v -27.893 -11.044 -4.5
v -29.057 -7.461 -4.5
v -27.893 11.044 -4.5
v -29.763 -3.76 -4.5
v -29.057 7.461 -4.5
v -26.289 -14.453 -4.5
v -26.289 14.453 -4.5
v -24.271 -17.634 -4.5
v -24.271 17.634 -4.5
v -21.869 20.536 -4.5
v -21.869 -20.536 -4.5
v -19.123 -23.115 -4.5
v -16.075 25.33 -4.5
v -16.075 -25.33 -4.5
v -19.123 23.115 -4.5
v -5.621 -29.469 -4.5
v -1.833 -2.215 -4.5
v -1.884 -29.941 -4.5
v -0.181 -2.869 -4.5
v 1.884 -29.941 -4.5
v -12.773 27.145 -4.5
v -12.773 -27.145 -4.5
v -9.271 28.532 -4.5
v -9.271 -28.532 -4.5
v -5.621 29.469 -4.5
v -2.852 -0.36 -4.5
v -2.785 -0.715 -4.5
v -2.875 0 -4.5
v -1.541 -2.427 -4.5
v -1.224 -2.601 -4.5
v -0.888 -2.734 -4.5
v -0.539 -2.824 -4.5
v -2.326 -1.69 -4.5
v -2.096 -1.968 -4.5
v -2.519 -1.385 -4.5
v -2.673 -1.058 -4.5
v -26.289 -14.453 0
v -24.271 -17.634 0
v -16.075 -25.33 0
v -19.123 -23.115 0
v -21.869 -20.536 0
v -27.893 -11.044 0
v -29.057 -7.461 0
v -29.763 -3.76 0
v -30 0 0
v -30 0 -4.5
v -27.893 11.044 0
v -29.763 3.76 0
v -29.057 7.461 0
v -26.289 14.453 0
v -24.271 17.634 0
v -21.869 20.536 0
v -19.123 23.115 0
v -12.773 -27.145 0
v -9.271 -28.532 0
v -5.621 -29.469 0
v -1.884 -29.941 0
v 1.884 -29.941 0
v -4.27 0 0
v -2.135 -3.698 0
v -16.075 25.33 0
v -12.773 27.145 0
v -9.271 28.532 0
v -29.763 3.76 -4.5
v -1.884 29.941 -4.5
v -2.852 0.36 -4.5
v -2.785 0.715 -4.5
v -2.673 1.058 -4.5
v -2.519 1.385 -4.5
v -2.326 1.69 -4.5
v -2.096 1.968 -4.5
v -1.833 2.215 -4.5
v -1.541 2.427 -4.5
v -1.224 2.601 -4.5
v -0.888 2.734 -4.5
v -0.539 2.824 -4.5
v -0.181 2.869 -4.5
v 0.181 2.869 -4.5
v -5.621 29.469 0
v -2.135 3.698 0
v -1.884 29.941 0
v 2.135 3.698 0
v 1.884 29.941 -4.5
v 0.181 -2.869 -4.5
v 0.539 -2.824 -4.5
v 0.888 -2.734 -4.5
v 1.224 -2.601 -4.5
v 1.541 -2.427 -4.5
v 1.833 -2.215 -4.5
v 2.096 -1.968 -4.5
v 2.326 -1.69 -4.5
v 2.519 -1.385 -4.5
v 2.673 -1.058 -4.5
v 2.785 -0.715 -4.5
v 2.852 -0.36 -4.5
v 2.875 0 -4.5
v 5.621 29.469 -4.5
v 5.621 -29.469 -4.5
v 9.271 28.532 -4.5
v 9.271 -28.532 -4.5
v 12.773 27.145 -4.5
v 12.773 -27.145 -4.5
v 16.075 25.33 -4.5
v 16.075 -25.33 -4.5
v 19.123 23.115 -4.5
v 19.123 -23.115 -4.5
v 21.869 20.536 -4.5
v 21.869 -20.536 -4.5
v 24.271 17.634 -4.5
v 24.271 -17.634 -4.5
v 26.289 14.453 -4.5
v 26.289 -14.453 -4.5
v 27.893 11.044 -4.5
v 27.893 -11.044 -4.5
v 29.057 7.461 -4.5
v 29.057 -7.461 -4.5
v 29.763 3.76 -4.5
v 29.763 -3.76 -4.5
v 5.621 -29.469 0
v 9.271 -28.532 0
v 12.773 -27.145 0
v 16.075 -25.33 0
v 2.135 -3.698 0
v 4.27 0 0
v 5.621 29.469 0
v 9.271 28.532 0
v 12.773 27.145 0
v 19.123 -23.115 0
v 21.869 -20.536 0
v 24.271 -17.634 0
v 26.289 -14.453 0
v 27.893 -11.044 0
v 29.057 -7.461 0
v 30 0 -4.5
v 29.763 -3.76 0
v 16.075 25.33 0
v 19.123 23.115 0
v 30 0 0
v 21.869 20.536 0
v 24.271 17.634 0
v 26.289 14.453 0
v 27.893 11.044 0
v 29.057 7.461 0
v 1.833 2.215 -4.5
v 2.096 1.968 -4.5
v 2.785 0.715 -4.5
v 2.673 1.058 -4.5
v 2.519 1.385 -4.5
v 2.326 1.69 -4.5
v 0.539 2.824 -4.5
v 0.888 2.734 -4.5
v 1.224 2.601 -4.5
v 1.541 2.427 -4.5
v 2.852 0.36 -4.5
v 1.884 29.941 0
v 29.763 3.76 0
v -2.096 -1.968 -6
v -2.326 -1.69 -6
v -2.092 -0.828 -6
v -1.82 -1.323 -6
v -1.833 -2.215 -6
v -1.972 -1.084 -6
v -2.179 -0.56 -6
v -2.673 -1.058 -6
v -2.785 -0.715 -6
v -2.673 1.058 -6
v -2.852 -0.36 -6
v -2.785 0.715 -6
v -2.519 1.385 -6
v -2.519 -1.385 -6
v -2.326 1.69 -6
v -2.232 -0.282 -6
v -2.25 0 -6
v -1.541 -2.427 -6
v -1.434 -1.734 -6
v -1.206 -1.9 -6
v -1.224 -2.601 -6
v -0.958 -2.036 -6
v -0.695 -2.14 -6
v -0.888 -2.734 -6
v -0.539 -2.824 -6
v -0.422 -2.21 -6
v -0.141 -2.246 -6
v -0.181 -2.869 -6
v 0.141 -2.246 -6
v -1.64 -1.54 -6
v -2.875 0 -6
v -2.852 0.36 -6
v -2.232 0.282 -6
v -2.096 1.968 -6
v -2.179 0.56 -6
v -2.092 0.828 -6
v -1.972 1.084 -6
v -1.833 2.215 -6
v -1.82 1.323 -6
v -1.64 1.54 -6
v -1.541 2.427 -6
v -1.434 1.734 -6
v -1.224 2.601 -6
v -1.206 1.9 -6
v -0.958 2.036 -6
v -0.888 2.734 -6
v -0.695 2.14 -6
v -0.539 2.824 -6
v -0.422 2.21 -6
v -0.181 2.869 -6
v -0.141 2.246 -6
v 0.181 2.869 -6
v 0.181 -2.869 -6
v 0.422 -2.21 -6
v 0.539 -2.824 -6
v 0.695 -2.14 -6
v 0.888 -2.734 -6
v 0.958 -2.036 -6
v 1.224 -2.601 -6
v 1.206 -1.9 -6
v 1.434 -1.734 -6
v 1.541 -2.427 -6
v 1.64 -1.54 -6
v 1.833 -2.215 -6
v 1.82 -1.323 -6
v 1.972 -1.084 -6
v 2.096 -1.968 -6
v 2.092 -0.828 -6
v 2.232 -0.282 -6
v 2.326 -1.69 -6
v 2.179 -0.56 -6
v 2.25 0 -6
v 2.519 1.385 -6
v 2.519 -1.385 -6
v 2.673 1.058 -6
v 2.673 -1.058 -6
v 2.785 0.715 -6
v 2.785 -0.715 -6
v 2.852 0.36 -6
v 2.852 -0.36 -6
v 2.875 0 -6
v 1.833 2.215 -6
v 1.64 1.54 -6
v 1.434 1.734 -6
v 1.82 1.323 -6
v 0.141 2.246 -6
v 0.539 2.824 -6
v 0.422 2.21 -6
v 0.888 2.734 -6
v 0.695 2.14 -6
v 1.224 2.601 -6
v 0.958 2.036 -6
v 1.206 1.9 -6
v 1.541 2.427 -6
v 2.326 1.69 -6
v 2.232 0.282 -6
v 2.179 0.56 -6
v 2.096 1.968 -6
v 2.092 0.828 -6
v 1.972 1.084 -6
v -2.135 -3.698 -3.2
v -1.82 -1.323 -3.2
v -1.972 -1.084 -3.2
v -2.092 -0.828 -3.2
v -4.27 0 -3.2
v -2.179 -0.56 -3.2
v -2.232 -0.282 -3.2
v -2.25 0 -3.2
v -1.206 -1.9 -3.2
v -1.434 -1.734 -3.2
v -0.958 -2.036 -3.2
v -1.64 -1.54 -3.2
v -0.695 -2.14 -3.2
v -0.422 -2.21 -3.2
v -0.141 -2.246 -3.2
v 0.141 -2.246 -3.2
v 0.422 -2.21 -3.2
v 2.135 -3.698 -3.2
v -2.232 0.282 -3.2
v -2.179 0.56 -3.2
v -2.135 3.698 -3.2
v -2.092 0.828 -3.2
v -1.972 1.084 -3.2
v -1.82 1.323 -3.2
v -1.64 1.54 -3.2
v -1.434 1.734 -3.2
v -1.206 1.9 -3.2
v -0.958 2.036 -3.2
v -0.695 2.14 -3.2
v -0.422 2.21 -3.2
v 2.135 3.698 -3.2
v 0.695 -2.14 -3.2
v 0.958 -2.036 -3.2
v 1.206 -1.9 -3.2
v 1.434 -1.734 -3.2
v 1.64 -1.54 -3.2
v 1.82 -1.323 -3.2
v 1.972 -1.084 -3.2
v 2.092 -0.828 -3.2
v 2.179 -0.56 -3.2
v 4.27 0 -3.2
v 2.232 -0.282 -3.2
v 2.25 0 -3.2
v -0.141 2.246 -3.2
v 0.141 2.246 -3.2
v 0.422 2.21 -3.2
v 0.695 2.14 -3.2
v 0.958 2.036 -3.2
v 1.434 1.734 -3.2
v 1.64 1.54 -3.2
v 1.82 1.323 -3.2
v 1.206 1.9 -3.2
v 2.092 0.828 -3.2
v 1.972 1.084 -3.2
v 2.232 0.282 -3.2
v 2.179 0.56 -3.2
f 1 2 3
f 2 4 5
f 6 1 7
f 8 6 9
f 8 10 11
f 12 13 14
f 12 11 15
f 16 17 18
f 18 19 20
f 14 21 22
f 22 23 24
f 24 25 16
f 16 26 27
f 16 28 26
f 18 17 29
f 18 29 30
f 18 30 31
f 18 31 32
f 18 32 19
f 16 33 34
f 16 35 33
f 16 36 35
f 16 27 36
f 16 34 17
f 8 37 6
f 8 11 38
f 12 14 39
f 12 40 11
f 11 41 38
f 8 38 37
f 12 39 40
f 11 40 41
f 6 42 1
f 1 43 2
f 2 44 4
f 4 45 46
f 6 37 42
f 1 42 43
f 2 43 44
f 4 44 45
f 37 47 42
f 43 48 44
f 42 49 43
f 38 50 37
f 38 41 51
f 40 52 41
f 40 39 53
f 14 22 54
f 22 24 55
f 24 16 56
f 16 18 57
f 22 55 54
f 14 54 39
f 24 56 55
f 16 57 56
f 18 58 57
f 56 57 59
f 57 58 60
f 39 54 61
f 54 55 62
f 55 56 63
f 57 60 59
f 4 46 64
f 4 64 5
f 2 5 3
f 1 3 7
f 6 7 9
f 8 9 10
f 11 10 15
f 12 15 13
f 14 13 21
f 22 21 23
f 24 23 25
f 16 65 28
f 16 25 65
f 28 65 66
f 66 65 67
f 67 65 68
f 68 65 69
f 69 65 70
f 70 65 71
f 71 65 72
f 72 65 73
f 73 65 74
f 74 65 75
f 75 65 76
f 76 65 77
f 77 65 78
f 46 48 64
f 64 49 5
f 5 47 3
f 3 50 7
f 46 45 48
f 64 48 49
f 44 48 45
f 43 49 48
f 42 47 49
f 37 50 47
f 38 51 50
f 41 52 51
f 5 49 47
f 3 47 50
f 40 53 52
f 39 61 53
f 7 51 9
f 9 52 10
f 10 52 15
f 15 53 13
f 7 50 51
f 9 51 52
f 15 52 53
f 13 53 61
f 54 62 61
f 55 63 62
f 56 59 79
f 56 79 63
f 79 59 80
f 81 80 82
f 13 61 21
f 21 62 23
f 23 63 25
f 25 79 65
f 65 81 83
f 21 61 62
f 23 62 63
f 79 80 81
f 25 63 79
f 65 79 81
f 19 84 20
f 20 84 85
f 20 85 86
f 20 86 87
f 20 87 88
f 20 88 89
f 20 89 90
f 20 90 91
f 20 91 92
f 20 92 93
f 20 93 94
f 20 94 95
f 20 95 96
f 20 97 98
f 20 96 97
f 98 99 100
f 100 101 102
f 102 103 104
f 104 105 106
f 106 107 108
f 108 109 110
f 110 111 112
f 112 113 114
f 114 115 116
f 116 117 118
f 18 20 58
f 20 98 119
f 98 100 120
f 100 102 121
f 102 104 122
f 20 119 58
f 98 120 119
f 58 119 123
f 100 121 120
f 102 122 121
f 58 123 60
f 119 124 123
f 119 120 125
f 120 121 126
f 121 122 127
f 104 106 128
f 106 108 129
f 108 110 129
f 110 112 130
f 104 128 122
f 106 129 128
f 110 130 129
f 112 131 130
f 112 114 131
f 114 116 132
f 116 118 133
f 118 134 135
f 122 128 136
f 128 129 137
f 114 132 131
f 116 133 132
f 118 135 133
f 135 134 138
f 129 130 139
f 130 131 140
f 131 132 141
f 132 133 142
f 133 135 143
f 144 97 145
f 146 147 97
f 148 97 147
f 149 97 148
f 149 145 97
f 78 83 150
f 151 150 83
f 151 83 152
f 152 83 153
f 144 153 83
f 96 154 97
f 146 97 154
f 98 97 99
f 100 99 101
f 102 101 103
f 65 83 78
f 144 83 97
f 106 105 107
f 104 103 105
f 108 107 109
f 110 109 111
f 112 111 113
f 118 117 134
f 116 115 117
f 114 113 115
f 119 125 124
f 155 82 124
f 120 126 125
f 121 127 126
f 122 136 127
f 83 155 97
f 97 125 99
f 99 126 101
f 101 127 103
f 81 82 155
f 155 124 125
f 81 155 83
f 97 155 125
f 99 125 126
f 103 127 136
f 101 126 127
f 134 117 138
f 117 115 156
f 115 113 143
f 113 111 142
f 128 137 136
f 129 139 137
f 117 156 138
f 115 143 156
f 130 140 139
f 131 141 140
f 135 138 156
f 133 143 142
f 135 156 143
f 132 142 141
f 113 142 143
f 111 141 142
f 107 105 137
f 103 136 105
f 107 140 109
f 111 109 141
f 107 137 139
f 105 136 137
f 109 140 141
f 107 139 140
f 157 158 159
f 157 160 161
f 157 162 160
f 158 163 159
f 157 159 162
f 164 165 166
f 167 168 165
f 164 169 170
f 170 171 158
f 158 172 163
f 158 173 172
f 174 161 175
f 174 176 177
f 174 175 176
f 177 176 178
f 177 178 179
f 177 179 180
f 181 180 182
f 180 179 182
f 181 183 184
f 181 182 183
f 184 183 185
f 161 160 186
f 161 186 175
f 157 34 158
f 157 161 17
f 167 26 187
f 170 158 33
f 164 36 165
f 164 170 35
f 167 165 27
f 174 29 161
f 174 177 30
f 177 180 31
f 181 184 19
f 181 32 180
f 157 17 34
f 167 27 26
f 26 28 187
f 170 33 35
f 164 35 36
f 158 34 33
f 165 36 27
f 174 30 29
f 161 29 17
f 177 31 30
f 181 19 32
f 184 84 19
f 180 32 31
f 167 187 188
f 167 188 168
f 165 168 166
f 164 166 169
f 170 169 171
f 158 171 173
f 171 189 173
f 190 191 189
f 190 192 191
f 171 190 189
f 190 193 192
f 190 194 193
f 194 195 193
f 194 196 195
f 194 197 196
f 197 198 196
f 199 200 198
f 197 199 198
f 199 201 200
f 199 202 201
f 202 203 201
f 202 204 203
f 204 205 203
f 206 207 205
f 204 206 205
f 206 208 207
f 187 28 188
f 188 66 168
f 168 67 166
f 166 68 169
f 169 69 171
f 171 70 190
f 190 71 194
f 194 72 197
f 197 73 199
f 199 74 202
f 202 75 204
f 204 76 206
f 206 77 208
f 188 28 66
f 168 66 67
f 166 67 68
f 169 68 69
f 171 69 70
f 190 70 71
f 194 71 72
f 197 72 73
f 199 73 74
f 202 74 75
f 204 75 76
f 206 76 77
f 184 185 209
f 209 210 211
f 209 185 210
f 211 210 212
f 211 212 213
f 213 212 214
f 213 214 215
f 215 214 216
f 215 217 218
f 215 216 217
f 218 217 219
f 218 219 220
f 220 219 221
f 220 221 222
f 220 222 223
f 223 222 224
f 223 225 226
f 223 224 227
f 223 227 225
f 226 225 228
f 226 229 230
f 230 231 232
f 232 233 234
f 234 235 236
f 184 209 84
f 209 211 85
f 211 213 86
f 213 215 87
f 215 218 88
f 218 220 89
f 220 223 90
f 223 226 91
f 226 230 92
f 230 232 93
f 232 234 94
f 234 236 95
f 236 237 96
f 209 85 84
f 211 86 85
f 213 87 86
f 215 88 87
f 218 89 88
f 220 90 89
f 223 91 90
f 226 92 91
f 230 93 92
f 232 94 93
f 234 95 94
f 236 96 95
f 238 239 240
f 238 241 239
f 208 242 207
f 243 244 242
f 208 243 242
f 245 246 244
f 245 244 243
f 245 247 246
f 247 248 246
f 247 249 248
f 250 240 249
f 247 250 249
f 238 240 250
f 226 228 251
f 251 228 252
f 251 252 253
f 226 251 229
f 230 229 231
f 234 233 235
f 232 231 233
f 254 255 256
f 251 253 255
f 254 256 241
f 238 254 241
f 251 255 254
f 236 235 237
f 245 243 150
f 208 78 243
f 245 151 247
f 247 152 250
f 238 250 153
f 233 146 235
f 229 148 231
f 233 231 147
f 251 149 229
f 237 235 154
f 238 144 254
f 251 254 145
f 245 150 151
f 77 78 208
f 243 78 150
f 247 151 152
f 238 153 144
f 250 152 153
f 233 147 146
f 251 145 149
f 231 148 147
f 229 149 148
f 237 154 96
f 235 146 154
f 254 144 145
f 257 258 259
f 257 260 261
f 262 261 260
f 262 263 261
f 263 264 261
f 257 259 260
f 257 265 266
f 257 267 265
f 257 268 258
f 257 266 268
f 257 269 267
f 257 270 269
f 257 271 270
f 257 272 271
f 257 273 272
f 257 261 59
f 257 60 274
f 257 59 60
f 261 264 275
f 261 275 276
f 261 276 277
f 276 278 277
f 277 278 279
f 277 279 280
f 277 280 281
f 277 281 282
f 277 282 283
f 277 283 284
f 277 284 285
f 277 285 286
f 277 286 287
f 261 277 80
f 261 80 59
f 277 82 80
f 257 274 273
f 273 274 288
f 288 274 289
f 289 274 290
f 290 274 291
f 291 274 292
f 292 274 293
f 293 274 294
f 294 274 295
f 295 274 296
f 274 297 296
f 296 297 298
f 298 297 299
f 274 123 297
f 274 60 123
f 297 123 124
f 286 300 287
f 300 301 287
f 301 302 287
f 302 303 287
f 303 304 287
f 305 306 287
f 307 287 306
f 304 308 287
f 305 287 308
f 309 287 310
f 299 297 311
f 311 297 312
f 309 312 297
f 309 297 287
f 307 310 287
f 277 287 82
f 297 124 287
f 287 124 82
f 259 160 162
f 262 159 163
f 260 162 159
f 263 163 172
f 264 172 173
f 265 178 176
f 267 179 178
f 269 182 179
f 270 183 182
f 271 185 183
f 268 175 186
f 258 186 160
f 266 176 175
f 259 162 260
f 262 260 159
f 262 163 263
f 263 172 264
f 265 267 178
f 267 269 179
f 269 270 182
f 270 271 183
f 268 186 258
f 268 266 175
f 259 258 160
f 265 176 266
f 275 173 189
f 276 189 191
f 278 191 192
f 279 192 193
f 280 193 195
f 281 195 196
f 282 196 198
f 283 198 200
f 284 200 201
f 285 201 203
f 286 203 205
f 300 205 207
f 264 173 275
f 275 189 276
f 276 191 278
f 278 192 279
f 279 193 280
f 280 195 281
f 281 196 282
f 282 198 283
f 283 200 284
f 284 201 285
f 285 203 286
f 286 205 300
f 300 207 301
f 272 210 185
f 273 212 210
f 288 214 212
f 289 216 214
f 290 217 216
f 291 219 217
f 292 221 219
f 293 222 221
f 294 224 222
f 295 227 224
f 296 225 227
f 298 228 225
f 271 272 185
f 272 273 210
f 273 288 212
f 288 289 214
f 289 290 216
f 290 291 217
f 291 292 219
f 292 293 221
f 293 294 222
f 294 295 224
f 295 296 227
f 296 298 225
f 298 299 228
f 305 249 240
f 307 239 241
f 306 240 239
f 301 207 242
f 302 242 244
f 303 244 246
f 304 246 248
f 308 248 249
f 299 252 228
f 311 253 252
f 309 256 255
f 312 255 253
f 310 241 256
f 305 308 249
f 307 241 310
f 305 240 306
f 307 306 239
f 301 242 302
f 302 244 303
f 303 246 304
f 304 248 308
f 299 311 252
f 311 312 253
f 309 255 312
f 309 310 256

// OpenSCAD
$fn = 50;


difference() {
	union() {
		translate(v = [0, 0, -4.5000000000]) {
			cylinder(h = 4.5000000000, r = 30.0000000000);
		}
		#translate(v = [0, 0, -6.0000000000]) {
			cylinder(h = 6, r = 2.8750000000);
		}
	}
	union() {
		translate(v = [0, 0, 0]) {
			rotate(a = [0, 0, 0]) {
				difference() {
					union() {
						translate(v = [0, 0, -3.2000000000]) {
							linear_extrude(height = 3.2000000000) {
								polygon(points = [[4.2698000000, 0.0000000000], [2.1349000000, 3.6977552691], [-2.1349000000, 3.6977552691], [-4.2698000000, 0.0000000000], [-2.1349000000, -3.6977552691], [2.1349000000, -3.6977552691]]);
							}
						}
					}
					union();
				}
			}
		}
		#translate(v = [0, 0, -100.0000000000]) {
			cylinder(h = 200, r = 2.2500000000);
		}
	}
}
